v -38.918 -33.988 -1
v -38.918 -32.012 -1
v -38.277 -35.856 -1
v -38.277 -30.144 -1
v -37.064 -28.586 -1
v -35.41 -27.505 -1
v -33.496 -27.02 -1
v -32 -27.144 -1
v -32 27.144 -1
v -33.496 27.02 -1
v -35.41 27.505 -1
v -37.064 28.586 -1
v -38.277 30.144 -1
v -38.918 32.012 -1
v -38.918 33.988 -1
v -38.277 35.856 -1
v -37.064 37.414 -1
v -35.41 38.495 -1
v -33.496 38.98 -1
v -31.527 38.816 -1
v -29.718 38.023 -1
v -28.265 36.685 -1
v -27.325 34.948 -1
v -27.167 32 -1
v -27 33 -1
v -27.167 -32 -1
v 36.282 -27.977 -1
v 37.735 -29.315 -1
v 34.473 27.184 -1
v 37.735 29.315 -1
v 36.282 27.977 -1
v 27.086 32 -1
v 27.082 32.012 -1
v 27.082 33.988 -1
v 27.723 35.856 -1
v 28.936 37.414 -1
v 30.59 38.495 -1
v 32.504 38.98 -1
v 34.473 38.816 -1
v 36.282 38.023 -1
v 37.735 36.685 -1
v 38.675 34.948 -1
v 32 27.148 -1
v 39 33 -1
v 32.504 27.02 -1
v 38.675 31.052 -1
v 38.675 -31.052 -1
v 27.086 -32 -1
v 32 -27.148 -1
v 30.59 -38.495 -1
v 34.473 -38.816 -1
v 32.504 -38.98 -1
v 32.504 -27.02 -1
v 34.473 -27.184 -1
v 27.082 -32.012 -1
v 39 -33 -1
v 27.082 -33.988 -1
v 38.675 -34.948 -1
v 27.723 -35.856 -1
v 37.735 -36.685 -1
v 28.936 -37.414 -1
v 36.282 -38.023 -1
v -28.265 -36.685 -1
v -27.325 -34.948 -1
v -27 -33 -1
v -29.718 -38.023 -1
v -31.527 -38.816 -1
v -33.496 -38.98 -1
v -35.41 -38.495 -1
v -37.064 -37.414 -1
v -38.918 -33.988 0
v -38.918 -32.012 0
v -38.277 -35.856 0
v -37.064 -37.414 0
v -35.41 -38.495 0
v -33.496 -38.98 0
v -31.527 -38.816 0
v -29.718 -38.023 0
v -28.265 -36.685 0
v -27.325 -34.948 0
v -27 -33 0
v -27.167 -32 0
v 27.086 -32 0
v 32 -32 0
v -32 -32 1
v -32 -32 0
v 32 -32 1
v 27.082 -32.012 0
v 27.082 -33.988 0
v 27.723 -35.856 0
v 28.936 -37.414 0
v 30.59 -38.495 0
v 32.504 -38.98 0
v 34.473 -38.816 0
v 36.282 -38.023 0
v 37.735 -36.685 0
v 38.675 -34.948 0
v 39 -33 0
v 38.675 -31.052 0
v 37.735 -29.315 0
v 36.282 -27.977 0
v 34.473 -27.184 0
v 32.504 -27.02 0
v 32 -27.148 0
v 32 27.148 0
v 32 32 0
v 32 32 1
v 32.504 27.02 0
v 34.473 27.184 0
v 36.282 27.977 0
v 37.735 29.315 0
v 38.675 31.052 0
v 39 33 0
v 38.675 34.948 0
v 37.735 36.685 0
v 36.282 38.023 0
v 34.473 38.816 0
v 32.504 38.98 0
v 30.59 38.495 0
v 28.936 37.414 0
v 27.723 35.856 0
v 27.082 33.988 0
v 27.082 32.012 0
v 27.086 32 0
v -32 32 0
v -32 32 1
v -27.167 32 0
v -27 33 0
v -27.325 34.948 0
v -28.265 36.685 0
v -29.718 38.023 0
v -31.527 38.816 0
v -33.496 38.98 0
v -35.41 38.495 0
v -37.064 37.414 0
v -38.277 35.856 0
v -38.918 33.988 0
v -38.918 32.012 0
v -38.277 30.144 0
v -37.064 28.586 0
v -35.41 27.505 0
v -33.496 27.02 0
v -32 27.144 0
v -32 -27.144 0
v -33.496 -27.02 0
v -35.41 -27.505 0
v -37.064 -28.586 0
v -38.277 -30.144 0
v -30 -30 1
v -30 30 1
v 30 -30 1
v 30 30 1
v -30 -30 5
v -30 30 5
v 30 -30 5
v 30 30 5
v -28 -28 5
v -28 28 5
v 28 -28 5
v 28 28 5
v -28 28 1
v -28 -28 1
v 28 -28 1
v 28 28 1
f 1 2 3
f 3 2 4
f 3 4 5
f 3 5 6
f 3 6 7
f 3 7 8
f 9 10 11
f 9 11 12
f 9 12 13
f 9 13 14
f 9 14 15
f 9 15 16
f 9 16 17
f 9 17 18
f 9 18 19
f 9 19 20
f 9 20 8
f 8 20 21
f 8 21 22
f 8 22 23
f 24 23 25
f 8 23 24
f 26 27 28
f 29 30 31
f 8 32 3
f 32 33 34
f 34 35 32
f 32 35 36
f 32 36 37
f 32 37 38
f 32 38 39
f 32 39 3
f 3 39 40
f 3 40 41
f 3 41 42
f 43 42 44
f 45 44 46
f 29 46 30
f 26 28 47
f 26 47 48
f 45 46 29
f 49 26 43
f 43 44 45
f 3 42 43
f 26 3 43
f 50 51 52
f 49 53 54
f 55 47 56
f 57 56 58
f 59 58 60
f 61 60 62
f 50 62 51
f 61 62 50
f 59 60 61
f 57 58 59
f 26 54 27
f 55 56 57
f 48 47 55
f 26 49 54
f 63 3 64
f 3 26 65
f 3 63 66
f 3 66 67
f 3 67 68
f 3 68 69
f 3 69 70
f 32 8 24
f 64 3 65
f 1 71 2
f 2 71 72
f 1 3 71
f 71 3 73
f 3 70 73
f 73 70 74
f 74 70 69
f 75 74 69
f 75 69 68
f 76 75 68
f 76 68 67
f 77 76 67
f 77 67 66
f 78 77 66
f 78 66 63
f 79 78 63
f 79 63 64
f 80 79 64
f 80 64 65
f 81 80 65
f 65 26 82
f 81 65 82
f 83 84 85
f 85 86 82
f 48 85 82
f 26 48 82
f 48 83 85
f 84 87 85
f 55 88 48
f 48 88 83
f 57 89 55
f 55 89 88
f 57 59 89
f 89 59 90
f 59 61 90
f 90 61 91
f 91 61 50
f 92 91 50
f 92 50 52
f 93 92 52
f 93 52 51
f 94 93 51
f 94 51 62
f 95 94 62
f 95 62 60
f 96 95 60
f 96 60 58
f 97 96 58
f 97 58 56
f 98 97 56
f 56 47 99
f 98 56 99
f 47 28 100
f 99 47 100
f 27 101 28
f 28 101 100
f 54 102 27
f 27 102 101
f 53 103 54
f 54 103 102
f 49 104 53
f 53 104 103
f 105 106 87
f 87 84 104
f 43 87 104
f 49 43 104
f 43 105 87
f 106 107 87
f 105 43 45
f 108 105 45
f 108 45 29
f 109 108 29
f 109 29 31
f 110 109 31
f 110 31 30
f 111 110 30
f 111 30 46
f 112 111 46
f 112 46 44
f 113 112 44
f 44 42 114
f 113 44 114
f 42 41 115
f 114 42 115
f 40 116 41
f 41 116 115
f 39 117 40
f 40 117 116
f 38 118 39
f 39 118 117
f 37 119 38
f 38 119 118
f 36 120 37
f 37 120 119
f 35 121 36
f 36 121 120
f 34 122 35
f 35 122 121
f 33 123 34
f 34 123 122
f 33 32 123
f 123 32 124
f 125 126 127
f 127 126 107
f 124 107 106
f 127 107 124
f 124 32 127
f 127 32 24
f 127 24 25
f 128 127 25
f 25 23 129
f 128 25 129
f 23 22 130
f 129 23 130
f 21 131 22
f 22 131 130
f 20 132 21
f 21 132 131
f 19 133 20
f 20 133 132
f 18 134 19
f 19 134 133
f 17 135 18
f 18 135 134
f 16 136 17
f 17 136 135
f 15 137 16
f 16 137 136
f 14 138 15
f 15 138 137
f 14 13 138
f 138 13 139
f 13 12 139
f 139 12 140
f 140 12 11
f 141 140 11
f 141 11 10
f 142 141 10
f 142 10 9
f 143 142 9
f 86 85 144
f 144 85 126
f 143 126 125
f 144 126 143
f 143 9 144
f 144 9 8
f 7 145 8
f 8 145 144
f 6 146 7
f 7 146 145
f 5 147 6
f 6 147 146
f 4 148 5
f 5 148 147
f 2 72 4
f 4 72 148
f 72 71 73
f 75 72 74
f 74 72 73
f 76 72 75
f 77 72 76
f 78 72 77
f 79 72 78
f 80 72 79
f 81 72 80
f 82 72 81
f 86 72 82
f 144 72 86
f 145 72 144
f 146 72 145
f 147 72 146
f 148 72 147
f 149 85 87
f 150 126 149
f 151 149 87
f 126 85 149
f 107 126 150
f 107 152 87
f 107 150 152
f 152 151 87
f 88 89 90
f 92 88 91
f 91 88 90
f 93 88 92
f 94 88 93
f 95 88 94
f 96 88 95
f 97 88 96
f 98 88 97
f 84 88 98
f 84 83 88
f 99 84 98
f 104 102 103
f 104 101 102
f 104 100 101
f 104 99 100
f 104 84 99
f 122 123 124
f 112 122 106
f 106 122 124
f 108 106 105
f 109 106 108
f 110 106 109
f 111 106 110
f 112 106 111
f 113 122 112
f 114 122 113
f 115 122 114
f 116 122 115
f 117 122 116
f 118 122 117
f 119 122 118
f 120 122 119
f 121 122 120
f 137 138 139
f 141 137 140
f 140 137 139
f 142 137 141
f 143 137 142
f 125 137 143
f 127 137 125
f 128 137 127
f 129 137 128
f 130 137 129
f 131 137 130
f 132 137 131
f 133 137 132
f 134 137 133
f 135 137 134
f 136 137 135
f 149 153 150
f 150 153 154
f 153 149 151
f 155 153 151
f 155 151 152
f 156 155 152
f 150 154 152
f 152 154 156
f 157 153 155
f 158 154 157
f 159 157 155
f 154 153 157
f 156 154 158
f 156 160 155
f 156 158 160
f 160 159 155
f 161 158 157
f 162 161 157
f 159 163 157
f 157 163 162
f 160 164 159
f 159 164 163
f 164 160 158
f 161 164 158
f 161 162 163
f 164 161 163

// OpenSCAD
cube([64,64,2], true);
difference(){
	translate([0,0,3]) {
		cube([60,60,4], true);
	}
	translate([0,0,3]) {
		cube([56,56,5], true);
	}
}

withmouseears();

// MOUSE EARS TO HELP AVOID WARPING
module withmouseears() {
	mouseear(33,33,-1);
	mouseear(33,-33,-1);
	mouseear(-33,-33,-1);
	mouseear(-33,33,-1);
}



module mouseear(x,y,z) {
	translate([x,y,z]) {
		cylinder(1,6,6);
	}
}
